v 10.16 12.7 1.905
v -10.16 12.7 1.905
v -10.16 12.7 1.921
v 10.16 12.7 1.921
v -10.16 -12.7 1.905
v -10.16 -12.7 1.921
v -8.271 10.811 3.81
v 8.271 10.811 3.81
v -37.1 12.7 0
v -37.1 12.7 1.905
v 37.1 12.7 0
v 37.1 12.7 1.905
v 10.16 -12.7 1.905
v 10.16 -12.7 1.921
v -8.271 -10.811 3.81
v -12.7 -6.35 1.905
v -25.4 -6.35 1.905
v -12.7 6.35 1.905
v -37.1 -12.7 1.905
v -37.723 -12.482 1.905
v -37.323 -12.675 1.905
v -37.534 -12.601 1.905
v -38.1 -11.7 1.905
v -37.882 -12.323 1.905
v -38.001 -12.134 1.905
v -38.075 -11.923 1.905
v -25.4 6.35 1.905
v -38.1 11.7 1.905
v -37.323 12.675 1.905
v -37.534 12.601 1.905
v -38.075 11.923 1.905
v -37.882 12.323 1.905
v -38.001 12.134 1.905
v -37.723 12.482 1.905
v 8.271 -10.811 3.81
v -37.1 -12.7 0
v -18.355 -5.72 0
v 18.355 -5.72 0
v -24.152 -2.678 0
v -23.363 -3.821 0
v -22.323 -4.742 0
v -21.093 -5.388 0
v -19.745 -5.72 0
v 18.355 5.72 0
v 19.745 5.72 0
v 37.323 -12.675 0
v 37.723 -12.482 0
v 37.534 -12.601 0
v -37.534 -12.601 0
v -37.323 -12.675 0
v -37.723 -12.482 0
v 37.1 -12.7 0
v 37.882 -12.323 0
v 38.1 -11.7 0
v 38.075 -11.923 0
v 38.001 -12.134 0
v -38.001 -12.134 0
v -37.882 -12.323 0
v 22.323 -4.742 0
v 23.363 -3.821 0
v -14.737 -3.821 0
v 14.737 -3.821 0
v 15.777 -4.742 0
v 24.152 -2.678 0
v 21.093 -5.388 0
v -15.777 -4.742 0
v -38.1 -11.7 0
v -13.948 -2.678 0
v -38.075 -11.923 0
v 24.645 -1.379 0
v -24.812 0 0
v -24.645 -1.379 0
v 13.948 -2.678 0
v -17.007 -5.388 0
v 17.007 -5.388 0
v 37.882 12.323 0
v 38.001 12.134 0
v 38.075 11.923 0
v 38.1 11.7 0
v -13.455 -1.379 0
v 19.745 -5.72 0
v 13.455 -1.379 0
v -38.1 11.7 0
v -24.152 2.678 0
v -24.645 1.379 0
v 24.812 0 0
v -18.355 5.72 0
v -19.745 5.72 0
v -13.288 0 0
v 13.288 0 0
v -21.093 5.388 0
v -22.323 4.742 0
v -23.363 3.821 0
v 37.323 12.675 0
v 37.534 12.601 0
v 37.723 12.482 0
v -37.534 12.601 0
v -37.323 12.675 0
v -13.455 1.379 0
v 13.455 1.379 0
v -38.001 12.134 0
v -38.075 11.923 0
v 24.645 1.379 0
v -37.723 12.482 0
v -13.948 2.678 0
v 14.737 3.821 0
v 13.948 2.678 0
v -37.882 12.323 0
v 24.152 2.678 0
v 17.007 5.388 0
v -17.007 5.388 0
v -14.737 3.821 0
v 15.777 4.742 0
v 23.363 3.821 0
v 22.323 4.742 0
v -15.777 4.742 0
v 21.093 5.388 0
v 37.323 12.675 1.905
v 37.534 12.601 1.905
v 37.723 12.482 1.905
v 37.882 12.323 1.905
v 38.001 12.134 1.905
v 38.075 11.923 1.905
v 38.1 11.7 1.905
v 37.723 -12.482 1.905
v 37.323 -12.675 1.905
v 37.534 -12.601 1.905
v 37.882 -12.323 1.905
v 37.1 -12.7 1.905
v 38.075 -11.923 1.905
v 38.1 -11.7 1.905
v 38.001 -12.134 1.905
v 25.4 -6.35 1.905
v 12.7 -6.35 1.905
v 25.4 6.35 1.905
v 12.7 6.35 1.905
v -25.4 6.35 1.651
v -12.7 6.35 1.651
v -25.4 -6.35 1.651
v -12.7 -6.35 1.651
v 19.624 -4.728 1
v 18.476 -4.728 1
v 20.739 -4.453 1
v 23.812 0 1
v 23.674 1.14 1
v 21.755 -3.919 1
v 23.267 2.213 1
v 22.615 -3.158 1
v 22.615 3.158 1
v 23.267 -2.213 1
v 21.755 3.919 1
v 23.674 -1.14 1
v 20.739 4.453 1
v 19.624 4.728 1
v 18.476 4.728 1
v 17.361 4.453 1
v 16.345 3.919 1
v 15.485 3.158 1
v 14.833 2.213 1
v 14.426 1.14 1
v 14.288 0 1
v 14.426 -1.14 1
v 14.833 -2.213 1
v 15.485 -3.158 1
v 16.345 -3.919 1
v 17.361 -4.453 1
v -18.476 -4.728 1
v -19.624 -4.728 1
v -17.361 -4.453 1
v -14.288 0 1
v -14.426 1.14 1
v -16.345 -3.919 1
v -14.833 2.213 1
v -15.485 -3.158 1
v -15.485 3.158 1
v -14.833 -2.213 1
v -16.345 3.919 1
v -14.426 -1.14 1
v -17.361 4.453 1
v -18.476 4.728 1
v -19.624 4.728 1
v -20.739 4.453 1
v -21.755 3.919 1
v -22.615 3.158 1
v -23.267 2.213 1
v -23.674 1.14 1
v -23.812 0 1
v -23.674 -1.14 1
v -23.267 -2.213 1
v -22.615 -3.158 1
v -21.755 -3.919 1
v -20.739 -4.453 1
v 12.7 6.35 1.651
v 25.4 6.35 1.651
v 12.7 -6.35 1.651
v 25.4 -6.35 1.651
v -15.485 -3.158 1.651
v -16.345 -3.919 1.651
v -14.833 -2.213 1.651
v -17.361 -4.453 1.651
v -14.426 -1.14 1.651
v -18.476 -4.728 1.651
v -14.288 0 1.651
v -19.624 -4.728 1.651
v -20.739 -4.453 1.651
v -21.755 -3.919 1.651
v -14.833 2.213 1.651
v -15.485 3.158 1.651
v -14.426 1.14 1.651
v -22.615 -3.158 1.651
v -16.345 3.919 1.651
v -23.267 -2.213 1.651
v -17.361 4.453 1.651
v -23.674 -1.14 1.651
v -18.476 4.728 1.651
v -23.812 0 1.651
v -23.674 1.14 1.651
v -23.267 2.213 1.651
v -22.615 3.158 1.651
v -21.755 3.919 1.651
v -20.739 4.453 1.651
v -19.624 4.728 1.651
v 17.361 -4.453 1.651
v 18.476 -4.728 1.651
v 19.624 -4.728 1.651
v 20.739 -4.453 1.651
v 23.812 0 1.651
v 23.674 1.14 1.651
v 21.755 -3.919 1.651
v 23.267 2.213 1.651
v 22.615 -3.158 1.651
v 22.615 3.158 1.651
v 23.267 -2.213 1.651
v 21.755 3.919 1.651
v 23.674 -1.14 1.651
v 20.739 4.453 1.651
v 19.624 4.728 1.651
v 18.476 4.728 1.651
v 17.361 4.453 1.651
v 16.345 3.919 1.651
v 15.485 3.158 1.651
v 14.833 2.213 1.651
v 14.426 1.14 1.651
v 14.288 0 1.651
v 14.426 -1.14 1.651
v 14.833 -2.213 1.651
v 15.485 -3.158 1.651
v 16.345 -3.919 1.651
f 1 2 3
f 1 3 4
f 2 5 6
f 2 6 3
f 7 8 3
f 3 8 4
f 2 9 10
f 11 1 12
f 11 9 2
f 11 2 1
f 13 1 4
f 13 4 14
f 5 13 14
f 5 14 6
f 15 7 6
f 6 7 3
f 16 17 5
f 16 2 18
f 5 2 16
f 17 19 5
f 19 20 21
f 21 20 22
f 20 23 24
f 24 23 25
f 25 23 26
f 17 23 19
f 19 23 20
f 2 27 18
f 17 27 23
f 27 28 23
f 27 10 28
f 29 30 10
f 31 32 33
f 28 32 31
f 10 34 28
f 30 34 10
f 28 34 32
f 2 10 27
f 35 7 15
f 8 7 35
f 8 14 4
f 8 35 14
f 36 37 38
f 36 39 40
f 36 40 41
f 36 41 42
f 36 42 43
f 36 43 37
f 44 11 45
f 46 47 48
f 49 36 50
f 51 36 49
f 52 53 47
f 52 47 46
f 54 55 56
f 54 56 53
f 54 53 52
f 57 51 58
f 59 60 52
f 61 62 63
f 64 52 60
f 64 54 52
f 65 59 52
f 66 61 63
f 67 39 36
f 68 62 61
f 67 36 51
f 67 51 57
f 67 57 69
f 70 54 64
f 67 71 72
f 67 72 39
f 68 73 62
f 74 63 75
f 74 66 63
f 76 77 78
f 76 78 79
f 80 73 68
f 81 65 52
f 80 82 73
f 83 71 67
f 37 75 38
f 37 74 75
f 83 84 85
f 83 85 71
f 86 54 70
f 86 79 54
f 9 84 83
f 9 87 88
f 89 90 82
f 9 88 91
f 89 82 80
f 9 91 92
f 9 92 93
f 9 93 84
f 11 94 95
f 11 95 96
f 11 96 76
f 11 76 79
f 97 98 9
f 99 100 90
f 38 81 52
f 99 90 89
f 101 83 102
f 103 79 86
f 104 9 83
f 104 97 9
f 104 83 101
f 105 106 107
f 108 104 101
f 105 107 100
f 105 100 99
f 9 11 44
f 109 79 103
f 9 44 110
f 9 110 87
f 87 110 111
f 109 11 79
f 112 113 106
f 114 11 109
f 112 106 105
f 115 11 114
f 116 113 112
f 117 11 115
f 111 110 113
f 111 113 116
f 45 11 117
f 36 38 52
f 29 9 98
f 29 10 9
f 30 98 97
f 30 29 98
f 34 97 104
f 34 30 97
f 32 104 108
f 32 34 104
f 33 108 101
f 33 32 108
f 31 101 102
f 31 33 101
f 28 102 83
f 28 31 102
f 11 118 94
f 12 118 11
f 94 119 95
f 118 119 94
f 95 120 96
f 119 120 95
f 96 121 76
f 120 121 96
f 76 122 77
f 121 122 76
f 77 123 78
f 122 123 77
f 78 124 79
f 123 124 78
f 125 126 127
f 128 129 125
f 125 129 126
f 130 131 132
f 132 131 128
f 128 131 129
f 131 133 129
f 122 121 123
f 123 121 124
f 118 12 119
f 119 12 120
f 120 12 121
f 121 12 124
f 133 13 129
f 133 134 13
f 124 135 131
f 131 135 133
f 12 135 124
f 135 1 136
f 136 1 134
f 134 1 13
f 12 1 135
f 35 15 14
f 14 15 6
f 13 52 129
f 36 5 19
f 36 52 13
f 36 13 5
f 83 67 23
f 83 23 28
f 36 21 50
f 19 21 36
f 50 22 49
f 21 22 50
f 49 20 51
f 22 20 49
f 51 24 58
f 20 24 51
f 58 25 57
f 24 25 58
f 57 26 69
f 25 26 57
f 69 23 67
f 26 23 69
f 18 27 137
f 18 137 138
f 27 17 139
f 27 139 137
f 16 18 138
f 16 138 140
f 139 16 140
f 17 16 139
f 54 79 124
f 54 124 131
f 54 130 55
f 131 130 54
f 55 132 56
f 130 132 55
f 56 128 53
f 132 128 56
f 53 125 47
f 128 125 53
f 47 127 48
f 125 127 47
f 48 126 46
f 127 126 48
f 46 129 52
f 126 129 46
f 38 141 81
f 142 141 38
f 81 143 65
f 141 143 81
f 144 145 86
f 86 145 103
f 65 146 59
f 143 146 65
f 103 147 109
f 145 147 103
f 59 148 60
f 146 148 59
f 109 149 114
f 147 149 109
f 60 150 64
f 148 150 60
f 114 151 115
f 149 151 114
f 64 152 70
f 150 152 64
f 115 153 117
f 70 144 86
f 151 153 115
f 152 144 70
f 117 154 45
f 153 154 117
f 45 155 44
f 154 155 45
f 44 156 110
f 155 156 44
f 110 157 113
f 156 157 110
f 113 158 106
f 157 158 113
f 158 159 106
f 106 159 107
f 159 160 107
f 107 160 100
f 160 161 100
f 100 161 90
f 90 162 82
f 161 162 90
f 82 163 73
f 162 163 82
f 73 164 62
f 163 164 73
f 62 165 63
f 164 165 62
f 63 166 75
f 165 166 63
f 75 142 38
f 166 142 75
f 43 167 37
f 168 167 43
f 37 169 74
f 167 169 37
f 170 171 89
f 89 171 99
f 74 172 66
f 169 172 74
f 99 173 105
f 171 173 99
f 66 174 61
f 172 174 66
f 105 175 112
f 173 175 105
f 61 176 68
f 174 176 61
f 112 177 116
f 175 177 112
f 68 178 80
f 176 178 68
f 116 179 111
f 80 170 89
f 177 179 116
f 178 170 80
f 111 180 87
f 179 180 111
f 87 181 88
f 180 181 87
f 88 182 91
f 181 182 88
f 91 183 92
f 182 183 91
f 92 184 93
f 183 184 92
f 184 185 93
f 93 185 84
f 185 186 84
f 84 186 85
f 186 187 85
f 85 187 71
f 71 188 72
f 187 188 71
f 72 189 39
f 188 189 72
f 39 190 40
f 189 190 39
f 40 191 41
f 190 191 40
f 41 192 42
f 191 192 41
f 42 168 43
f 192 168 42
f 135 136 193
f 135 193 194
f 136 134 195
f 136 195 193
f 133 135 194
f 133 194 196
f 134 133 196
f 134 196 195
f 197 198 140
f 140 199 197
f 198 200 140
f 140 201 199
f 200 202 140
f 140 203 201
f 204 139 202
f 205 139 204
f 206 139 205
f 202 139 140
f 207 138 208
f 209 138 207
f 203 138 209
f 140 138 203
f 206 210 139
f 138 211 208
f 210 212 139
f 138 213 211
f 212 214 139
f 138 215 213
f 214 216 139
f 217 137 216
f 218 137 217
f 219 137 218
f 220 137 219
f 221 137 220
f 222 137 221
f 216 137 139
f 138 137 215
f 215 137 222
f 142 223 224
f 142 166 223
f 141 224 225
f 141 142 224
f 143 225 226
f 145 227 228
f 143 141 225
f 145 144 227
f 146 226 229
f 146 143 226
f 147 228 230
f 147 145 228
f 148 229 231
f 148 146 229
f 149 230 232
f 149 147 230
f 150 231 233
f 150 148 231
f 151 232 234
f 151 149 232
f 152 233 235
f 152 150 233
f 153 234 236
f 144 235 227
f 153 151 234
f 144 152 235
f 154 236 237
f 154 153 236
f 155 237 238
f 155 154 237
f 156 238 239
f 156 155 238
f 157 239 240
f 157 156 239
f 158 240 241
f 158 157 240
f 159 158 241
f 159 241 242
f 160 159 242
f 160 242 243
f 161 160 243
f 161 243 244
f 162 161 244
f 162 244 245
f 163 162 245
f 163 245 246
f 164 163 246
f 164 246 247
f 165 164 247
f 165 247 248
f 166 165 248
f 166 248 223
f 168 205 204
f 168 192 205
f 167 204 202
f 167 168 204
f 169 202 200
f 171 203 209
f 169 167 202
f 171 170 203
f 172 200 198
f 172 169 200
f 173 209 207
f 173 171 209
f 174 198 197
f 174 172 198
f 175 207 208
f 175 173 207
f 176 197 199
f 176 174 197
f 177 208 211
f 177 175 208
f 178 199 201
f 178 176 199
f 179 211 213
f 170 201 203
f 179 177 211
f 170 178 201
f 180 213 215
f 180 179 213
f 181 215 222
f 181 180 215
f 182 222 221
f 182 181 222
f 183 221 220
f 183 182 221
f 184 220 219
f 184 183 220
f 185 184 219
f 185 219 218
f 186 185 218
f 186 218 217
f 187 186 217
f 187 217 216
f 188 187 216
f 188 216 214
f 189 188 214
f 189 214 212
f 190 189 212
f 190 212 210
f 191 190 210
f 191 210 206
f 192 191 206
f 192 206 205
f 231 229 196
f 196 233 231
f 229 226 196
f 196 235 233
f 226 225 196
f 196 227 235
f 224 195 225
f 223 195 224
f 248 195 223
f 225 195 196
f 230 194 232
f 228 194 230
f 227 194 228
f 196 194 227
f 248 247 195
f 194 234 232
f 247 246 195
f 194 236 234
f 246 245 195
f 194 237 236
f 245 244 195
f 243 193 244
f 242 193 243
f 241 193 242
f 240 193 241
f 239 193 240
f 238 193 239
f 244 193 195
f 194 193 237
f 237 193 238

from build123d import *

# Parameters (mm, degrees)
SKETCH_W        = 76.2
SKETCH_H        = 25.4
SKETCH_R        = 4.7625
PAD_DEPTH       = 1.905
SKETCH001_W     = 12.7
SKETCH001_H     = 12.7
POCKET_DEPTH    = 0.254
CHAMFER_SIZE    = 1
FILLET_R        = 1
SKETCH002_W     = 20.32
SKETCH002_H     = 25.4
PAD001_DEPTH    = 1.905
CHAMFER001_SIZE = 1.889001


with BuildPart() as part:
    # Sketch → Pad (new body)
    with BuildSketch(Plane.XY):
        Rectangle(SKETCH_W, SKETCH_H)
        with Locations((-19.05, 0)):
            Circle(SKETCH_R, mode=Mode.SUBTRACT)
        with Locations((19.05, 0)):
            Circle(SKETCH_R, mode=Mode.SUBTRACT)
    extrude(amount=PAD_DEPTH)

    # Sketch001 → Pocket (cut)
    with BuildSketch(Plane.XY.offset(1.905)):
        with Locations((-19.05, 0)):
            Rectangle(SKETCH001_W, SKETCH001_H)
        with Locations((19.05, 0)):
            Rectangle(SKETCH001_W, SKETCH001_H)
    extrude(amount=-POCKET_DEPTH, mode=Mode.SUBTRACT)

    # Chamfer
    chamfer_edges = [part.edges().sort_by_distance(p)[0] for p in [
        (14.2875, 0, 0),
        (-23.8125, 0, 0),
    ]]
    chamfer(chamfer_edges, length=CHAMFER_SIZE)

    # Fillet
    fillet_edges = [part.edges().sort_by_distance(p)[0] for p in [
        (38.1, 12.7, 0.9525),
        (38.1, -12.7, 0.9525),
        (-38.1, -12.7, 0.9525),
        (-38.1, 12.7, 0.9525),
    ]]
    fillet(fillet_edges, radius=FILLET_R)

    # Sketch002 (on Face5 of Pocket) → Pad001 (join)
    with BuildSketch(Plane.XY.offset(1.905)):
        Rectangle(SKETCH002_W, SKETCH002_H)
    extrude(amount=PAD001_DEPTH)

    # Chamfer001
    chamfer001_edges = [part.edges().sort_by_distance(p)[0] for p in [
        (0, -12.7, 3.81),
        (-10.16, 0, 3.81),
        (10.16, 0, 3.81),
        (0, 12.7, 3.81),
    ]]
    chamfer(chamfer001_edges, length=CHAMFER001_SIZE)


solid = part.part
